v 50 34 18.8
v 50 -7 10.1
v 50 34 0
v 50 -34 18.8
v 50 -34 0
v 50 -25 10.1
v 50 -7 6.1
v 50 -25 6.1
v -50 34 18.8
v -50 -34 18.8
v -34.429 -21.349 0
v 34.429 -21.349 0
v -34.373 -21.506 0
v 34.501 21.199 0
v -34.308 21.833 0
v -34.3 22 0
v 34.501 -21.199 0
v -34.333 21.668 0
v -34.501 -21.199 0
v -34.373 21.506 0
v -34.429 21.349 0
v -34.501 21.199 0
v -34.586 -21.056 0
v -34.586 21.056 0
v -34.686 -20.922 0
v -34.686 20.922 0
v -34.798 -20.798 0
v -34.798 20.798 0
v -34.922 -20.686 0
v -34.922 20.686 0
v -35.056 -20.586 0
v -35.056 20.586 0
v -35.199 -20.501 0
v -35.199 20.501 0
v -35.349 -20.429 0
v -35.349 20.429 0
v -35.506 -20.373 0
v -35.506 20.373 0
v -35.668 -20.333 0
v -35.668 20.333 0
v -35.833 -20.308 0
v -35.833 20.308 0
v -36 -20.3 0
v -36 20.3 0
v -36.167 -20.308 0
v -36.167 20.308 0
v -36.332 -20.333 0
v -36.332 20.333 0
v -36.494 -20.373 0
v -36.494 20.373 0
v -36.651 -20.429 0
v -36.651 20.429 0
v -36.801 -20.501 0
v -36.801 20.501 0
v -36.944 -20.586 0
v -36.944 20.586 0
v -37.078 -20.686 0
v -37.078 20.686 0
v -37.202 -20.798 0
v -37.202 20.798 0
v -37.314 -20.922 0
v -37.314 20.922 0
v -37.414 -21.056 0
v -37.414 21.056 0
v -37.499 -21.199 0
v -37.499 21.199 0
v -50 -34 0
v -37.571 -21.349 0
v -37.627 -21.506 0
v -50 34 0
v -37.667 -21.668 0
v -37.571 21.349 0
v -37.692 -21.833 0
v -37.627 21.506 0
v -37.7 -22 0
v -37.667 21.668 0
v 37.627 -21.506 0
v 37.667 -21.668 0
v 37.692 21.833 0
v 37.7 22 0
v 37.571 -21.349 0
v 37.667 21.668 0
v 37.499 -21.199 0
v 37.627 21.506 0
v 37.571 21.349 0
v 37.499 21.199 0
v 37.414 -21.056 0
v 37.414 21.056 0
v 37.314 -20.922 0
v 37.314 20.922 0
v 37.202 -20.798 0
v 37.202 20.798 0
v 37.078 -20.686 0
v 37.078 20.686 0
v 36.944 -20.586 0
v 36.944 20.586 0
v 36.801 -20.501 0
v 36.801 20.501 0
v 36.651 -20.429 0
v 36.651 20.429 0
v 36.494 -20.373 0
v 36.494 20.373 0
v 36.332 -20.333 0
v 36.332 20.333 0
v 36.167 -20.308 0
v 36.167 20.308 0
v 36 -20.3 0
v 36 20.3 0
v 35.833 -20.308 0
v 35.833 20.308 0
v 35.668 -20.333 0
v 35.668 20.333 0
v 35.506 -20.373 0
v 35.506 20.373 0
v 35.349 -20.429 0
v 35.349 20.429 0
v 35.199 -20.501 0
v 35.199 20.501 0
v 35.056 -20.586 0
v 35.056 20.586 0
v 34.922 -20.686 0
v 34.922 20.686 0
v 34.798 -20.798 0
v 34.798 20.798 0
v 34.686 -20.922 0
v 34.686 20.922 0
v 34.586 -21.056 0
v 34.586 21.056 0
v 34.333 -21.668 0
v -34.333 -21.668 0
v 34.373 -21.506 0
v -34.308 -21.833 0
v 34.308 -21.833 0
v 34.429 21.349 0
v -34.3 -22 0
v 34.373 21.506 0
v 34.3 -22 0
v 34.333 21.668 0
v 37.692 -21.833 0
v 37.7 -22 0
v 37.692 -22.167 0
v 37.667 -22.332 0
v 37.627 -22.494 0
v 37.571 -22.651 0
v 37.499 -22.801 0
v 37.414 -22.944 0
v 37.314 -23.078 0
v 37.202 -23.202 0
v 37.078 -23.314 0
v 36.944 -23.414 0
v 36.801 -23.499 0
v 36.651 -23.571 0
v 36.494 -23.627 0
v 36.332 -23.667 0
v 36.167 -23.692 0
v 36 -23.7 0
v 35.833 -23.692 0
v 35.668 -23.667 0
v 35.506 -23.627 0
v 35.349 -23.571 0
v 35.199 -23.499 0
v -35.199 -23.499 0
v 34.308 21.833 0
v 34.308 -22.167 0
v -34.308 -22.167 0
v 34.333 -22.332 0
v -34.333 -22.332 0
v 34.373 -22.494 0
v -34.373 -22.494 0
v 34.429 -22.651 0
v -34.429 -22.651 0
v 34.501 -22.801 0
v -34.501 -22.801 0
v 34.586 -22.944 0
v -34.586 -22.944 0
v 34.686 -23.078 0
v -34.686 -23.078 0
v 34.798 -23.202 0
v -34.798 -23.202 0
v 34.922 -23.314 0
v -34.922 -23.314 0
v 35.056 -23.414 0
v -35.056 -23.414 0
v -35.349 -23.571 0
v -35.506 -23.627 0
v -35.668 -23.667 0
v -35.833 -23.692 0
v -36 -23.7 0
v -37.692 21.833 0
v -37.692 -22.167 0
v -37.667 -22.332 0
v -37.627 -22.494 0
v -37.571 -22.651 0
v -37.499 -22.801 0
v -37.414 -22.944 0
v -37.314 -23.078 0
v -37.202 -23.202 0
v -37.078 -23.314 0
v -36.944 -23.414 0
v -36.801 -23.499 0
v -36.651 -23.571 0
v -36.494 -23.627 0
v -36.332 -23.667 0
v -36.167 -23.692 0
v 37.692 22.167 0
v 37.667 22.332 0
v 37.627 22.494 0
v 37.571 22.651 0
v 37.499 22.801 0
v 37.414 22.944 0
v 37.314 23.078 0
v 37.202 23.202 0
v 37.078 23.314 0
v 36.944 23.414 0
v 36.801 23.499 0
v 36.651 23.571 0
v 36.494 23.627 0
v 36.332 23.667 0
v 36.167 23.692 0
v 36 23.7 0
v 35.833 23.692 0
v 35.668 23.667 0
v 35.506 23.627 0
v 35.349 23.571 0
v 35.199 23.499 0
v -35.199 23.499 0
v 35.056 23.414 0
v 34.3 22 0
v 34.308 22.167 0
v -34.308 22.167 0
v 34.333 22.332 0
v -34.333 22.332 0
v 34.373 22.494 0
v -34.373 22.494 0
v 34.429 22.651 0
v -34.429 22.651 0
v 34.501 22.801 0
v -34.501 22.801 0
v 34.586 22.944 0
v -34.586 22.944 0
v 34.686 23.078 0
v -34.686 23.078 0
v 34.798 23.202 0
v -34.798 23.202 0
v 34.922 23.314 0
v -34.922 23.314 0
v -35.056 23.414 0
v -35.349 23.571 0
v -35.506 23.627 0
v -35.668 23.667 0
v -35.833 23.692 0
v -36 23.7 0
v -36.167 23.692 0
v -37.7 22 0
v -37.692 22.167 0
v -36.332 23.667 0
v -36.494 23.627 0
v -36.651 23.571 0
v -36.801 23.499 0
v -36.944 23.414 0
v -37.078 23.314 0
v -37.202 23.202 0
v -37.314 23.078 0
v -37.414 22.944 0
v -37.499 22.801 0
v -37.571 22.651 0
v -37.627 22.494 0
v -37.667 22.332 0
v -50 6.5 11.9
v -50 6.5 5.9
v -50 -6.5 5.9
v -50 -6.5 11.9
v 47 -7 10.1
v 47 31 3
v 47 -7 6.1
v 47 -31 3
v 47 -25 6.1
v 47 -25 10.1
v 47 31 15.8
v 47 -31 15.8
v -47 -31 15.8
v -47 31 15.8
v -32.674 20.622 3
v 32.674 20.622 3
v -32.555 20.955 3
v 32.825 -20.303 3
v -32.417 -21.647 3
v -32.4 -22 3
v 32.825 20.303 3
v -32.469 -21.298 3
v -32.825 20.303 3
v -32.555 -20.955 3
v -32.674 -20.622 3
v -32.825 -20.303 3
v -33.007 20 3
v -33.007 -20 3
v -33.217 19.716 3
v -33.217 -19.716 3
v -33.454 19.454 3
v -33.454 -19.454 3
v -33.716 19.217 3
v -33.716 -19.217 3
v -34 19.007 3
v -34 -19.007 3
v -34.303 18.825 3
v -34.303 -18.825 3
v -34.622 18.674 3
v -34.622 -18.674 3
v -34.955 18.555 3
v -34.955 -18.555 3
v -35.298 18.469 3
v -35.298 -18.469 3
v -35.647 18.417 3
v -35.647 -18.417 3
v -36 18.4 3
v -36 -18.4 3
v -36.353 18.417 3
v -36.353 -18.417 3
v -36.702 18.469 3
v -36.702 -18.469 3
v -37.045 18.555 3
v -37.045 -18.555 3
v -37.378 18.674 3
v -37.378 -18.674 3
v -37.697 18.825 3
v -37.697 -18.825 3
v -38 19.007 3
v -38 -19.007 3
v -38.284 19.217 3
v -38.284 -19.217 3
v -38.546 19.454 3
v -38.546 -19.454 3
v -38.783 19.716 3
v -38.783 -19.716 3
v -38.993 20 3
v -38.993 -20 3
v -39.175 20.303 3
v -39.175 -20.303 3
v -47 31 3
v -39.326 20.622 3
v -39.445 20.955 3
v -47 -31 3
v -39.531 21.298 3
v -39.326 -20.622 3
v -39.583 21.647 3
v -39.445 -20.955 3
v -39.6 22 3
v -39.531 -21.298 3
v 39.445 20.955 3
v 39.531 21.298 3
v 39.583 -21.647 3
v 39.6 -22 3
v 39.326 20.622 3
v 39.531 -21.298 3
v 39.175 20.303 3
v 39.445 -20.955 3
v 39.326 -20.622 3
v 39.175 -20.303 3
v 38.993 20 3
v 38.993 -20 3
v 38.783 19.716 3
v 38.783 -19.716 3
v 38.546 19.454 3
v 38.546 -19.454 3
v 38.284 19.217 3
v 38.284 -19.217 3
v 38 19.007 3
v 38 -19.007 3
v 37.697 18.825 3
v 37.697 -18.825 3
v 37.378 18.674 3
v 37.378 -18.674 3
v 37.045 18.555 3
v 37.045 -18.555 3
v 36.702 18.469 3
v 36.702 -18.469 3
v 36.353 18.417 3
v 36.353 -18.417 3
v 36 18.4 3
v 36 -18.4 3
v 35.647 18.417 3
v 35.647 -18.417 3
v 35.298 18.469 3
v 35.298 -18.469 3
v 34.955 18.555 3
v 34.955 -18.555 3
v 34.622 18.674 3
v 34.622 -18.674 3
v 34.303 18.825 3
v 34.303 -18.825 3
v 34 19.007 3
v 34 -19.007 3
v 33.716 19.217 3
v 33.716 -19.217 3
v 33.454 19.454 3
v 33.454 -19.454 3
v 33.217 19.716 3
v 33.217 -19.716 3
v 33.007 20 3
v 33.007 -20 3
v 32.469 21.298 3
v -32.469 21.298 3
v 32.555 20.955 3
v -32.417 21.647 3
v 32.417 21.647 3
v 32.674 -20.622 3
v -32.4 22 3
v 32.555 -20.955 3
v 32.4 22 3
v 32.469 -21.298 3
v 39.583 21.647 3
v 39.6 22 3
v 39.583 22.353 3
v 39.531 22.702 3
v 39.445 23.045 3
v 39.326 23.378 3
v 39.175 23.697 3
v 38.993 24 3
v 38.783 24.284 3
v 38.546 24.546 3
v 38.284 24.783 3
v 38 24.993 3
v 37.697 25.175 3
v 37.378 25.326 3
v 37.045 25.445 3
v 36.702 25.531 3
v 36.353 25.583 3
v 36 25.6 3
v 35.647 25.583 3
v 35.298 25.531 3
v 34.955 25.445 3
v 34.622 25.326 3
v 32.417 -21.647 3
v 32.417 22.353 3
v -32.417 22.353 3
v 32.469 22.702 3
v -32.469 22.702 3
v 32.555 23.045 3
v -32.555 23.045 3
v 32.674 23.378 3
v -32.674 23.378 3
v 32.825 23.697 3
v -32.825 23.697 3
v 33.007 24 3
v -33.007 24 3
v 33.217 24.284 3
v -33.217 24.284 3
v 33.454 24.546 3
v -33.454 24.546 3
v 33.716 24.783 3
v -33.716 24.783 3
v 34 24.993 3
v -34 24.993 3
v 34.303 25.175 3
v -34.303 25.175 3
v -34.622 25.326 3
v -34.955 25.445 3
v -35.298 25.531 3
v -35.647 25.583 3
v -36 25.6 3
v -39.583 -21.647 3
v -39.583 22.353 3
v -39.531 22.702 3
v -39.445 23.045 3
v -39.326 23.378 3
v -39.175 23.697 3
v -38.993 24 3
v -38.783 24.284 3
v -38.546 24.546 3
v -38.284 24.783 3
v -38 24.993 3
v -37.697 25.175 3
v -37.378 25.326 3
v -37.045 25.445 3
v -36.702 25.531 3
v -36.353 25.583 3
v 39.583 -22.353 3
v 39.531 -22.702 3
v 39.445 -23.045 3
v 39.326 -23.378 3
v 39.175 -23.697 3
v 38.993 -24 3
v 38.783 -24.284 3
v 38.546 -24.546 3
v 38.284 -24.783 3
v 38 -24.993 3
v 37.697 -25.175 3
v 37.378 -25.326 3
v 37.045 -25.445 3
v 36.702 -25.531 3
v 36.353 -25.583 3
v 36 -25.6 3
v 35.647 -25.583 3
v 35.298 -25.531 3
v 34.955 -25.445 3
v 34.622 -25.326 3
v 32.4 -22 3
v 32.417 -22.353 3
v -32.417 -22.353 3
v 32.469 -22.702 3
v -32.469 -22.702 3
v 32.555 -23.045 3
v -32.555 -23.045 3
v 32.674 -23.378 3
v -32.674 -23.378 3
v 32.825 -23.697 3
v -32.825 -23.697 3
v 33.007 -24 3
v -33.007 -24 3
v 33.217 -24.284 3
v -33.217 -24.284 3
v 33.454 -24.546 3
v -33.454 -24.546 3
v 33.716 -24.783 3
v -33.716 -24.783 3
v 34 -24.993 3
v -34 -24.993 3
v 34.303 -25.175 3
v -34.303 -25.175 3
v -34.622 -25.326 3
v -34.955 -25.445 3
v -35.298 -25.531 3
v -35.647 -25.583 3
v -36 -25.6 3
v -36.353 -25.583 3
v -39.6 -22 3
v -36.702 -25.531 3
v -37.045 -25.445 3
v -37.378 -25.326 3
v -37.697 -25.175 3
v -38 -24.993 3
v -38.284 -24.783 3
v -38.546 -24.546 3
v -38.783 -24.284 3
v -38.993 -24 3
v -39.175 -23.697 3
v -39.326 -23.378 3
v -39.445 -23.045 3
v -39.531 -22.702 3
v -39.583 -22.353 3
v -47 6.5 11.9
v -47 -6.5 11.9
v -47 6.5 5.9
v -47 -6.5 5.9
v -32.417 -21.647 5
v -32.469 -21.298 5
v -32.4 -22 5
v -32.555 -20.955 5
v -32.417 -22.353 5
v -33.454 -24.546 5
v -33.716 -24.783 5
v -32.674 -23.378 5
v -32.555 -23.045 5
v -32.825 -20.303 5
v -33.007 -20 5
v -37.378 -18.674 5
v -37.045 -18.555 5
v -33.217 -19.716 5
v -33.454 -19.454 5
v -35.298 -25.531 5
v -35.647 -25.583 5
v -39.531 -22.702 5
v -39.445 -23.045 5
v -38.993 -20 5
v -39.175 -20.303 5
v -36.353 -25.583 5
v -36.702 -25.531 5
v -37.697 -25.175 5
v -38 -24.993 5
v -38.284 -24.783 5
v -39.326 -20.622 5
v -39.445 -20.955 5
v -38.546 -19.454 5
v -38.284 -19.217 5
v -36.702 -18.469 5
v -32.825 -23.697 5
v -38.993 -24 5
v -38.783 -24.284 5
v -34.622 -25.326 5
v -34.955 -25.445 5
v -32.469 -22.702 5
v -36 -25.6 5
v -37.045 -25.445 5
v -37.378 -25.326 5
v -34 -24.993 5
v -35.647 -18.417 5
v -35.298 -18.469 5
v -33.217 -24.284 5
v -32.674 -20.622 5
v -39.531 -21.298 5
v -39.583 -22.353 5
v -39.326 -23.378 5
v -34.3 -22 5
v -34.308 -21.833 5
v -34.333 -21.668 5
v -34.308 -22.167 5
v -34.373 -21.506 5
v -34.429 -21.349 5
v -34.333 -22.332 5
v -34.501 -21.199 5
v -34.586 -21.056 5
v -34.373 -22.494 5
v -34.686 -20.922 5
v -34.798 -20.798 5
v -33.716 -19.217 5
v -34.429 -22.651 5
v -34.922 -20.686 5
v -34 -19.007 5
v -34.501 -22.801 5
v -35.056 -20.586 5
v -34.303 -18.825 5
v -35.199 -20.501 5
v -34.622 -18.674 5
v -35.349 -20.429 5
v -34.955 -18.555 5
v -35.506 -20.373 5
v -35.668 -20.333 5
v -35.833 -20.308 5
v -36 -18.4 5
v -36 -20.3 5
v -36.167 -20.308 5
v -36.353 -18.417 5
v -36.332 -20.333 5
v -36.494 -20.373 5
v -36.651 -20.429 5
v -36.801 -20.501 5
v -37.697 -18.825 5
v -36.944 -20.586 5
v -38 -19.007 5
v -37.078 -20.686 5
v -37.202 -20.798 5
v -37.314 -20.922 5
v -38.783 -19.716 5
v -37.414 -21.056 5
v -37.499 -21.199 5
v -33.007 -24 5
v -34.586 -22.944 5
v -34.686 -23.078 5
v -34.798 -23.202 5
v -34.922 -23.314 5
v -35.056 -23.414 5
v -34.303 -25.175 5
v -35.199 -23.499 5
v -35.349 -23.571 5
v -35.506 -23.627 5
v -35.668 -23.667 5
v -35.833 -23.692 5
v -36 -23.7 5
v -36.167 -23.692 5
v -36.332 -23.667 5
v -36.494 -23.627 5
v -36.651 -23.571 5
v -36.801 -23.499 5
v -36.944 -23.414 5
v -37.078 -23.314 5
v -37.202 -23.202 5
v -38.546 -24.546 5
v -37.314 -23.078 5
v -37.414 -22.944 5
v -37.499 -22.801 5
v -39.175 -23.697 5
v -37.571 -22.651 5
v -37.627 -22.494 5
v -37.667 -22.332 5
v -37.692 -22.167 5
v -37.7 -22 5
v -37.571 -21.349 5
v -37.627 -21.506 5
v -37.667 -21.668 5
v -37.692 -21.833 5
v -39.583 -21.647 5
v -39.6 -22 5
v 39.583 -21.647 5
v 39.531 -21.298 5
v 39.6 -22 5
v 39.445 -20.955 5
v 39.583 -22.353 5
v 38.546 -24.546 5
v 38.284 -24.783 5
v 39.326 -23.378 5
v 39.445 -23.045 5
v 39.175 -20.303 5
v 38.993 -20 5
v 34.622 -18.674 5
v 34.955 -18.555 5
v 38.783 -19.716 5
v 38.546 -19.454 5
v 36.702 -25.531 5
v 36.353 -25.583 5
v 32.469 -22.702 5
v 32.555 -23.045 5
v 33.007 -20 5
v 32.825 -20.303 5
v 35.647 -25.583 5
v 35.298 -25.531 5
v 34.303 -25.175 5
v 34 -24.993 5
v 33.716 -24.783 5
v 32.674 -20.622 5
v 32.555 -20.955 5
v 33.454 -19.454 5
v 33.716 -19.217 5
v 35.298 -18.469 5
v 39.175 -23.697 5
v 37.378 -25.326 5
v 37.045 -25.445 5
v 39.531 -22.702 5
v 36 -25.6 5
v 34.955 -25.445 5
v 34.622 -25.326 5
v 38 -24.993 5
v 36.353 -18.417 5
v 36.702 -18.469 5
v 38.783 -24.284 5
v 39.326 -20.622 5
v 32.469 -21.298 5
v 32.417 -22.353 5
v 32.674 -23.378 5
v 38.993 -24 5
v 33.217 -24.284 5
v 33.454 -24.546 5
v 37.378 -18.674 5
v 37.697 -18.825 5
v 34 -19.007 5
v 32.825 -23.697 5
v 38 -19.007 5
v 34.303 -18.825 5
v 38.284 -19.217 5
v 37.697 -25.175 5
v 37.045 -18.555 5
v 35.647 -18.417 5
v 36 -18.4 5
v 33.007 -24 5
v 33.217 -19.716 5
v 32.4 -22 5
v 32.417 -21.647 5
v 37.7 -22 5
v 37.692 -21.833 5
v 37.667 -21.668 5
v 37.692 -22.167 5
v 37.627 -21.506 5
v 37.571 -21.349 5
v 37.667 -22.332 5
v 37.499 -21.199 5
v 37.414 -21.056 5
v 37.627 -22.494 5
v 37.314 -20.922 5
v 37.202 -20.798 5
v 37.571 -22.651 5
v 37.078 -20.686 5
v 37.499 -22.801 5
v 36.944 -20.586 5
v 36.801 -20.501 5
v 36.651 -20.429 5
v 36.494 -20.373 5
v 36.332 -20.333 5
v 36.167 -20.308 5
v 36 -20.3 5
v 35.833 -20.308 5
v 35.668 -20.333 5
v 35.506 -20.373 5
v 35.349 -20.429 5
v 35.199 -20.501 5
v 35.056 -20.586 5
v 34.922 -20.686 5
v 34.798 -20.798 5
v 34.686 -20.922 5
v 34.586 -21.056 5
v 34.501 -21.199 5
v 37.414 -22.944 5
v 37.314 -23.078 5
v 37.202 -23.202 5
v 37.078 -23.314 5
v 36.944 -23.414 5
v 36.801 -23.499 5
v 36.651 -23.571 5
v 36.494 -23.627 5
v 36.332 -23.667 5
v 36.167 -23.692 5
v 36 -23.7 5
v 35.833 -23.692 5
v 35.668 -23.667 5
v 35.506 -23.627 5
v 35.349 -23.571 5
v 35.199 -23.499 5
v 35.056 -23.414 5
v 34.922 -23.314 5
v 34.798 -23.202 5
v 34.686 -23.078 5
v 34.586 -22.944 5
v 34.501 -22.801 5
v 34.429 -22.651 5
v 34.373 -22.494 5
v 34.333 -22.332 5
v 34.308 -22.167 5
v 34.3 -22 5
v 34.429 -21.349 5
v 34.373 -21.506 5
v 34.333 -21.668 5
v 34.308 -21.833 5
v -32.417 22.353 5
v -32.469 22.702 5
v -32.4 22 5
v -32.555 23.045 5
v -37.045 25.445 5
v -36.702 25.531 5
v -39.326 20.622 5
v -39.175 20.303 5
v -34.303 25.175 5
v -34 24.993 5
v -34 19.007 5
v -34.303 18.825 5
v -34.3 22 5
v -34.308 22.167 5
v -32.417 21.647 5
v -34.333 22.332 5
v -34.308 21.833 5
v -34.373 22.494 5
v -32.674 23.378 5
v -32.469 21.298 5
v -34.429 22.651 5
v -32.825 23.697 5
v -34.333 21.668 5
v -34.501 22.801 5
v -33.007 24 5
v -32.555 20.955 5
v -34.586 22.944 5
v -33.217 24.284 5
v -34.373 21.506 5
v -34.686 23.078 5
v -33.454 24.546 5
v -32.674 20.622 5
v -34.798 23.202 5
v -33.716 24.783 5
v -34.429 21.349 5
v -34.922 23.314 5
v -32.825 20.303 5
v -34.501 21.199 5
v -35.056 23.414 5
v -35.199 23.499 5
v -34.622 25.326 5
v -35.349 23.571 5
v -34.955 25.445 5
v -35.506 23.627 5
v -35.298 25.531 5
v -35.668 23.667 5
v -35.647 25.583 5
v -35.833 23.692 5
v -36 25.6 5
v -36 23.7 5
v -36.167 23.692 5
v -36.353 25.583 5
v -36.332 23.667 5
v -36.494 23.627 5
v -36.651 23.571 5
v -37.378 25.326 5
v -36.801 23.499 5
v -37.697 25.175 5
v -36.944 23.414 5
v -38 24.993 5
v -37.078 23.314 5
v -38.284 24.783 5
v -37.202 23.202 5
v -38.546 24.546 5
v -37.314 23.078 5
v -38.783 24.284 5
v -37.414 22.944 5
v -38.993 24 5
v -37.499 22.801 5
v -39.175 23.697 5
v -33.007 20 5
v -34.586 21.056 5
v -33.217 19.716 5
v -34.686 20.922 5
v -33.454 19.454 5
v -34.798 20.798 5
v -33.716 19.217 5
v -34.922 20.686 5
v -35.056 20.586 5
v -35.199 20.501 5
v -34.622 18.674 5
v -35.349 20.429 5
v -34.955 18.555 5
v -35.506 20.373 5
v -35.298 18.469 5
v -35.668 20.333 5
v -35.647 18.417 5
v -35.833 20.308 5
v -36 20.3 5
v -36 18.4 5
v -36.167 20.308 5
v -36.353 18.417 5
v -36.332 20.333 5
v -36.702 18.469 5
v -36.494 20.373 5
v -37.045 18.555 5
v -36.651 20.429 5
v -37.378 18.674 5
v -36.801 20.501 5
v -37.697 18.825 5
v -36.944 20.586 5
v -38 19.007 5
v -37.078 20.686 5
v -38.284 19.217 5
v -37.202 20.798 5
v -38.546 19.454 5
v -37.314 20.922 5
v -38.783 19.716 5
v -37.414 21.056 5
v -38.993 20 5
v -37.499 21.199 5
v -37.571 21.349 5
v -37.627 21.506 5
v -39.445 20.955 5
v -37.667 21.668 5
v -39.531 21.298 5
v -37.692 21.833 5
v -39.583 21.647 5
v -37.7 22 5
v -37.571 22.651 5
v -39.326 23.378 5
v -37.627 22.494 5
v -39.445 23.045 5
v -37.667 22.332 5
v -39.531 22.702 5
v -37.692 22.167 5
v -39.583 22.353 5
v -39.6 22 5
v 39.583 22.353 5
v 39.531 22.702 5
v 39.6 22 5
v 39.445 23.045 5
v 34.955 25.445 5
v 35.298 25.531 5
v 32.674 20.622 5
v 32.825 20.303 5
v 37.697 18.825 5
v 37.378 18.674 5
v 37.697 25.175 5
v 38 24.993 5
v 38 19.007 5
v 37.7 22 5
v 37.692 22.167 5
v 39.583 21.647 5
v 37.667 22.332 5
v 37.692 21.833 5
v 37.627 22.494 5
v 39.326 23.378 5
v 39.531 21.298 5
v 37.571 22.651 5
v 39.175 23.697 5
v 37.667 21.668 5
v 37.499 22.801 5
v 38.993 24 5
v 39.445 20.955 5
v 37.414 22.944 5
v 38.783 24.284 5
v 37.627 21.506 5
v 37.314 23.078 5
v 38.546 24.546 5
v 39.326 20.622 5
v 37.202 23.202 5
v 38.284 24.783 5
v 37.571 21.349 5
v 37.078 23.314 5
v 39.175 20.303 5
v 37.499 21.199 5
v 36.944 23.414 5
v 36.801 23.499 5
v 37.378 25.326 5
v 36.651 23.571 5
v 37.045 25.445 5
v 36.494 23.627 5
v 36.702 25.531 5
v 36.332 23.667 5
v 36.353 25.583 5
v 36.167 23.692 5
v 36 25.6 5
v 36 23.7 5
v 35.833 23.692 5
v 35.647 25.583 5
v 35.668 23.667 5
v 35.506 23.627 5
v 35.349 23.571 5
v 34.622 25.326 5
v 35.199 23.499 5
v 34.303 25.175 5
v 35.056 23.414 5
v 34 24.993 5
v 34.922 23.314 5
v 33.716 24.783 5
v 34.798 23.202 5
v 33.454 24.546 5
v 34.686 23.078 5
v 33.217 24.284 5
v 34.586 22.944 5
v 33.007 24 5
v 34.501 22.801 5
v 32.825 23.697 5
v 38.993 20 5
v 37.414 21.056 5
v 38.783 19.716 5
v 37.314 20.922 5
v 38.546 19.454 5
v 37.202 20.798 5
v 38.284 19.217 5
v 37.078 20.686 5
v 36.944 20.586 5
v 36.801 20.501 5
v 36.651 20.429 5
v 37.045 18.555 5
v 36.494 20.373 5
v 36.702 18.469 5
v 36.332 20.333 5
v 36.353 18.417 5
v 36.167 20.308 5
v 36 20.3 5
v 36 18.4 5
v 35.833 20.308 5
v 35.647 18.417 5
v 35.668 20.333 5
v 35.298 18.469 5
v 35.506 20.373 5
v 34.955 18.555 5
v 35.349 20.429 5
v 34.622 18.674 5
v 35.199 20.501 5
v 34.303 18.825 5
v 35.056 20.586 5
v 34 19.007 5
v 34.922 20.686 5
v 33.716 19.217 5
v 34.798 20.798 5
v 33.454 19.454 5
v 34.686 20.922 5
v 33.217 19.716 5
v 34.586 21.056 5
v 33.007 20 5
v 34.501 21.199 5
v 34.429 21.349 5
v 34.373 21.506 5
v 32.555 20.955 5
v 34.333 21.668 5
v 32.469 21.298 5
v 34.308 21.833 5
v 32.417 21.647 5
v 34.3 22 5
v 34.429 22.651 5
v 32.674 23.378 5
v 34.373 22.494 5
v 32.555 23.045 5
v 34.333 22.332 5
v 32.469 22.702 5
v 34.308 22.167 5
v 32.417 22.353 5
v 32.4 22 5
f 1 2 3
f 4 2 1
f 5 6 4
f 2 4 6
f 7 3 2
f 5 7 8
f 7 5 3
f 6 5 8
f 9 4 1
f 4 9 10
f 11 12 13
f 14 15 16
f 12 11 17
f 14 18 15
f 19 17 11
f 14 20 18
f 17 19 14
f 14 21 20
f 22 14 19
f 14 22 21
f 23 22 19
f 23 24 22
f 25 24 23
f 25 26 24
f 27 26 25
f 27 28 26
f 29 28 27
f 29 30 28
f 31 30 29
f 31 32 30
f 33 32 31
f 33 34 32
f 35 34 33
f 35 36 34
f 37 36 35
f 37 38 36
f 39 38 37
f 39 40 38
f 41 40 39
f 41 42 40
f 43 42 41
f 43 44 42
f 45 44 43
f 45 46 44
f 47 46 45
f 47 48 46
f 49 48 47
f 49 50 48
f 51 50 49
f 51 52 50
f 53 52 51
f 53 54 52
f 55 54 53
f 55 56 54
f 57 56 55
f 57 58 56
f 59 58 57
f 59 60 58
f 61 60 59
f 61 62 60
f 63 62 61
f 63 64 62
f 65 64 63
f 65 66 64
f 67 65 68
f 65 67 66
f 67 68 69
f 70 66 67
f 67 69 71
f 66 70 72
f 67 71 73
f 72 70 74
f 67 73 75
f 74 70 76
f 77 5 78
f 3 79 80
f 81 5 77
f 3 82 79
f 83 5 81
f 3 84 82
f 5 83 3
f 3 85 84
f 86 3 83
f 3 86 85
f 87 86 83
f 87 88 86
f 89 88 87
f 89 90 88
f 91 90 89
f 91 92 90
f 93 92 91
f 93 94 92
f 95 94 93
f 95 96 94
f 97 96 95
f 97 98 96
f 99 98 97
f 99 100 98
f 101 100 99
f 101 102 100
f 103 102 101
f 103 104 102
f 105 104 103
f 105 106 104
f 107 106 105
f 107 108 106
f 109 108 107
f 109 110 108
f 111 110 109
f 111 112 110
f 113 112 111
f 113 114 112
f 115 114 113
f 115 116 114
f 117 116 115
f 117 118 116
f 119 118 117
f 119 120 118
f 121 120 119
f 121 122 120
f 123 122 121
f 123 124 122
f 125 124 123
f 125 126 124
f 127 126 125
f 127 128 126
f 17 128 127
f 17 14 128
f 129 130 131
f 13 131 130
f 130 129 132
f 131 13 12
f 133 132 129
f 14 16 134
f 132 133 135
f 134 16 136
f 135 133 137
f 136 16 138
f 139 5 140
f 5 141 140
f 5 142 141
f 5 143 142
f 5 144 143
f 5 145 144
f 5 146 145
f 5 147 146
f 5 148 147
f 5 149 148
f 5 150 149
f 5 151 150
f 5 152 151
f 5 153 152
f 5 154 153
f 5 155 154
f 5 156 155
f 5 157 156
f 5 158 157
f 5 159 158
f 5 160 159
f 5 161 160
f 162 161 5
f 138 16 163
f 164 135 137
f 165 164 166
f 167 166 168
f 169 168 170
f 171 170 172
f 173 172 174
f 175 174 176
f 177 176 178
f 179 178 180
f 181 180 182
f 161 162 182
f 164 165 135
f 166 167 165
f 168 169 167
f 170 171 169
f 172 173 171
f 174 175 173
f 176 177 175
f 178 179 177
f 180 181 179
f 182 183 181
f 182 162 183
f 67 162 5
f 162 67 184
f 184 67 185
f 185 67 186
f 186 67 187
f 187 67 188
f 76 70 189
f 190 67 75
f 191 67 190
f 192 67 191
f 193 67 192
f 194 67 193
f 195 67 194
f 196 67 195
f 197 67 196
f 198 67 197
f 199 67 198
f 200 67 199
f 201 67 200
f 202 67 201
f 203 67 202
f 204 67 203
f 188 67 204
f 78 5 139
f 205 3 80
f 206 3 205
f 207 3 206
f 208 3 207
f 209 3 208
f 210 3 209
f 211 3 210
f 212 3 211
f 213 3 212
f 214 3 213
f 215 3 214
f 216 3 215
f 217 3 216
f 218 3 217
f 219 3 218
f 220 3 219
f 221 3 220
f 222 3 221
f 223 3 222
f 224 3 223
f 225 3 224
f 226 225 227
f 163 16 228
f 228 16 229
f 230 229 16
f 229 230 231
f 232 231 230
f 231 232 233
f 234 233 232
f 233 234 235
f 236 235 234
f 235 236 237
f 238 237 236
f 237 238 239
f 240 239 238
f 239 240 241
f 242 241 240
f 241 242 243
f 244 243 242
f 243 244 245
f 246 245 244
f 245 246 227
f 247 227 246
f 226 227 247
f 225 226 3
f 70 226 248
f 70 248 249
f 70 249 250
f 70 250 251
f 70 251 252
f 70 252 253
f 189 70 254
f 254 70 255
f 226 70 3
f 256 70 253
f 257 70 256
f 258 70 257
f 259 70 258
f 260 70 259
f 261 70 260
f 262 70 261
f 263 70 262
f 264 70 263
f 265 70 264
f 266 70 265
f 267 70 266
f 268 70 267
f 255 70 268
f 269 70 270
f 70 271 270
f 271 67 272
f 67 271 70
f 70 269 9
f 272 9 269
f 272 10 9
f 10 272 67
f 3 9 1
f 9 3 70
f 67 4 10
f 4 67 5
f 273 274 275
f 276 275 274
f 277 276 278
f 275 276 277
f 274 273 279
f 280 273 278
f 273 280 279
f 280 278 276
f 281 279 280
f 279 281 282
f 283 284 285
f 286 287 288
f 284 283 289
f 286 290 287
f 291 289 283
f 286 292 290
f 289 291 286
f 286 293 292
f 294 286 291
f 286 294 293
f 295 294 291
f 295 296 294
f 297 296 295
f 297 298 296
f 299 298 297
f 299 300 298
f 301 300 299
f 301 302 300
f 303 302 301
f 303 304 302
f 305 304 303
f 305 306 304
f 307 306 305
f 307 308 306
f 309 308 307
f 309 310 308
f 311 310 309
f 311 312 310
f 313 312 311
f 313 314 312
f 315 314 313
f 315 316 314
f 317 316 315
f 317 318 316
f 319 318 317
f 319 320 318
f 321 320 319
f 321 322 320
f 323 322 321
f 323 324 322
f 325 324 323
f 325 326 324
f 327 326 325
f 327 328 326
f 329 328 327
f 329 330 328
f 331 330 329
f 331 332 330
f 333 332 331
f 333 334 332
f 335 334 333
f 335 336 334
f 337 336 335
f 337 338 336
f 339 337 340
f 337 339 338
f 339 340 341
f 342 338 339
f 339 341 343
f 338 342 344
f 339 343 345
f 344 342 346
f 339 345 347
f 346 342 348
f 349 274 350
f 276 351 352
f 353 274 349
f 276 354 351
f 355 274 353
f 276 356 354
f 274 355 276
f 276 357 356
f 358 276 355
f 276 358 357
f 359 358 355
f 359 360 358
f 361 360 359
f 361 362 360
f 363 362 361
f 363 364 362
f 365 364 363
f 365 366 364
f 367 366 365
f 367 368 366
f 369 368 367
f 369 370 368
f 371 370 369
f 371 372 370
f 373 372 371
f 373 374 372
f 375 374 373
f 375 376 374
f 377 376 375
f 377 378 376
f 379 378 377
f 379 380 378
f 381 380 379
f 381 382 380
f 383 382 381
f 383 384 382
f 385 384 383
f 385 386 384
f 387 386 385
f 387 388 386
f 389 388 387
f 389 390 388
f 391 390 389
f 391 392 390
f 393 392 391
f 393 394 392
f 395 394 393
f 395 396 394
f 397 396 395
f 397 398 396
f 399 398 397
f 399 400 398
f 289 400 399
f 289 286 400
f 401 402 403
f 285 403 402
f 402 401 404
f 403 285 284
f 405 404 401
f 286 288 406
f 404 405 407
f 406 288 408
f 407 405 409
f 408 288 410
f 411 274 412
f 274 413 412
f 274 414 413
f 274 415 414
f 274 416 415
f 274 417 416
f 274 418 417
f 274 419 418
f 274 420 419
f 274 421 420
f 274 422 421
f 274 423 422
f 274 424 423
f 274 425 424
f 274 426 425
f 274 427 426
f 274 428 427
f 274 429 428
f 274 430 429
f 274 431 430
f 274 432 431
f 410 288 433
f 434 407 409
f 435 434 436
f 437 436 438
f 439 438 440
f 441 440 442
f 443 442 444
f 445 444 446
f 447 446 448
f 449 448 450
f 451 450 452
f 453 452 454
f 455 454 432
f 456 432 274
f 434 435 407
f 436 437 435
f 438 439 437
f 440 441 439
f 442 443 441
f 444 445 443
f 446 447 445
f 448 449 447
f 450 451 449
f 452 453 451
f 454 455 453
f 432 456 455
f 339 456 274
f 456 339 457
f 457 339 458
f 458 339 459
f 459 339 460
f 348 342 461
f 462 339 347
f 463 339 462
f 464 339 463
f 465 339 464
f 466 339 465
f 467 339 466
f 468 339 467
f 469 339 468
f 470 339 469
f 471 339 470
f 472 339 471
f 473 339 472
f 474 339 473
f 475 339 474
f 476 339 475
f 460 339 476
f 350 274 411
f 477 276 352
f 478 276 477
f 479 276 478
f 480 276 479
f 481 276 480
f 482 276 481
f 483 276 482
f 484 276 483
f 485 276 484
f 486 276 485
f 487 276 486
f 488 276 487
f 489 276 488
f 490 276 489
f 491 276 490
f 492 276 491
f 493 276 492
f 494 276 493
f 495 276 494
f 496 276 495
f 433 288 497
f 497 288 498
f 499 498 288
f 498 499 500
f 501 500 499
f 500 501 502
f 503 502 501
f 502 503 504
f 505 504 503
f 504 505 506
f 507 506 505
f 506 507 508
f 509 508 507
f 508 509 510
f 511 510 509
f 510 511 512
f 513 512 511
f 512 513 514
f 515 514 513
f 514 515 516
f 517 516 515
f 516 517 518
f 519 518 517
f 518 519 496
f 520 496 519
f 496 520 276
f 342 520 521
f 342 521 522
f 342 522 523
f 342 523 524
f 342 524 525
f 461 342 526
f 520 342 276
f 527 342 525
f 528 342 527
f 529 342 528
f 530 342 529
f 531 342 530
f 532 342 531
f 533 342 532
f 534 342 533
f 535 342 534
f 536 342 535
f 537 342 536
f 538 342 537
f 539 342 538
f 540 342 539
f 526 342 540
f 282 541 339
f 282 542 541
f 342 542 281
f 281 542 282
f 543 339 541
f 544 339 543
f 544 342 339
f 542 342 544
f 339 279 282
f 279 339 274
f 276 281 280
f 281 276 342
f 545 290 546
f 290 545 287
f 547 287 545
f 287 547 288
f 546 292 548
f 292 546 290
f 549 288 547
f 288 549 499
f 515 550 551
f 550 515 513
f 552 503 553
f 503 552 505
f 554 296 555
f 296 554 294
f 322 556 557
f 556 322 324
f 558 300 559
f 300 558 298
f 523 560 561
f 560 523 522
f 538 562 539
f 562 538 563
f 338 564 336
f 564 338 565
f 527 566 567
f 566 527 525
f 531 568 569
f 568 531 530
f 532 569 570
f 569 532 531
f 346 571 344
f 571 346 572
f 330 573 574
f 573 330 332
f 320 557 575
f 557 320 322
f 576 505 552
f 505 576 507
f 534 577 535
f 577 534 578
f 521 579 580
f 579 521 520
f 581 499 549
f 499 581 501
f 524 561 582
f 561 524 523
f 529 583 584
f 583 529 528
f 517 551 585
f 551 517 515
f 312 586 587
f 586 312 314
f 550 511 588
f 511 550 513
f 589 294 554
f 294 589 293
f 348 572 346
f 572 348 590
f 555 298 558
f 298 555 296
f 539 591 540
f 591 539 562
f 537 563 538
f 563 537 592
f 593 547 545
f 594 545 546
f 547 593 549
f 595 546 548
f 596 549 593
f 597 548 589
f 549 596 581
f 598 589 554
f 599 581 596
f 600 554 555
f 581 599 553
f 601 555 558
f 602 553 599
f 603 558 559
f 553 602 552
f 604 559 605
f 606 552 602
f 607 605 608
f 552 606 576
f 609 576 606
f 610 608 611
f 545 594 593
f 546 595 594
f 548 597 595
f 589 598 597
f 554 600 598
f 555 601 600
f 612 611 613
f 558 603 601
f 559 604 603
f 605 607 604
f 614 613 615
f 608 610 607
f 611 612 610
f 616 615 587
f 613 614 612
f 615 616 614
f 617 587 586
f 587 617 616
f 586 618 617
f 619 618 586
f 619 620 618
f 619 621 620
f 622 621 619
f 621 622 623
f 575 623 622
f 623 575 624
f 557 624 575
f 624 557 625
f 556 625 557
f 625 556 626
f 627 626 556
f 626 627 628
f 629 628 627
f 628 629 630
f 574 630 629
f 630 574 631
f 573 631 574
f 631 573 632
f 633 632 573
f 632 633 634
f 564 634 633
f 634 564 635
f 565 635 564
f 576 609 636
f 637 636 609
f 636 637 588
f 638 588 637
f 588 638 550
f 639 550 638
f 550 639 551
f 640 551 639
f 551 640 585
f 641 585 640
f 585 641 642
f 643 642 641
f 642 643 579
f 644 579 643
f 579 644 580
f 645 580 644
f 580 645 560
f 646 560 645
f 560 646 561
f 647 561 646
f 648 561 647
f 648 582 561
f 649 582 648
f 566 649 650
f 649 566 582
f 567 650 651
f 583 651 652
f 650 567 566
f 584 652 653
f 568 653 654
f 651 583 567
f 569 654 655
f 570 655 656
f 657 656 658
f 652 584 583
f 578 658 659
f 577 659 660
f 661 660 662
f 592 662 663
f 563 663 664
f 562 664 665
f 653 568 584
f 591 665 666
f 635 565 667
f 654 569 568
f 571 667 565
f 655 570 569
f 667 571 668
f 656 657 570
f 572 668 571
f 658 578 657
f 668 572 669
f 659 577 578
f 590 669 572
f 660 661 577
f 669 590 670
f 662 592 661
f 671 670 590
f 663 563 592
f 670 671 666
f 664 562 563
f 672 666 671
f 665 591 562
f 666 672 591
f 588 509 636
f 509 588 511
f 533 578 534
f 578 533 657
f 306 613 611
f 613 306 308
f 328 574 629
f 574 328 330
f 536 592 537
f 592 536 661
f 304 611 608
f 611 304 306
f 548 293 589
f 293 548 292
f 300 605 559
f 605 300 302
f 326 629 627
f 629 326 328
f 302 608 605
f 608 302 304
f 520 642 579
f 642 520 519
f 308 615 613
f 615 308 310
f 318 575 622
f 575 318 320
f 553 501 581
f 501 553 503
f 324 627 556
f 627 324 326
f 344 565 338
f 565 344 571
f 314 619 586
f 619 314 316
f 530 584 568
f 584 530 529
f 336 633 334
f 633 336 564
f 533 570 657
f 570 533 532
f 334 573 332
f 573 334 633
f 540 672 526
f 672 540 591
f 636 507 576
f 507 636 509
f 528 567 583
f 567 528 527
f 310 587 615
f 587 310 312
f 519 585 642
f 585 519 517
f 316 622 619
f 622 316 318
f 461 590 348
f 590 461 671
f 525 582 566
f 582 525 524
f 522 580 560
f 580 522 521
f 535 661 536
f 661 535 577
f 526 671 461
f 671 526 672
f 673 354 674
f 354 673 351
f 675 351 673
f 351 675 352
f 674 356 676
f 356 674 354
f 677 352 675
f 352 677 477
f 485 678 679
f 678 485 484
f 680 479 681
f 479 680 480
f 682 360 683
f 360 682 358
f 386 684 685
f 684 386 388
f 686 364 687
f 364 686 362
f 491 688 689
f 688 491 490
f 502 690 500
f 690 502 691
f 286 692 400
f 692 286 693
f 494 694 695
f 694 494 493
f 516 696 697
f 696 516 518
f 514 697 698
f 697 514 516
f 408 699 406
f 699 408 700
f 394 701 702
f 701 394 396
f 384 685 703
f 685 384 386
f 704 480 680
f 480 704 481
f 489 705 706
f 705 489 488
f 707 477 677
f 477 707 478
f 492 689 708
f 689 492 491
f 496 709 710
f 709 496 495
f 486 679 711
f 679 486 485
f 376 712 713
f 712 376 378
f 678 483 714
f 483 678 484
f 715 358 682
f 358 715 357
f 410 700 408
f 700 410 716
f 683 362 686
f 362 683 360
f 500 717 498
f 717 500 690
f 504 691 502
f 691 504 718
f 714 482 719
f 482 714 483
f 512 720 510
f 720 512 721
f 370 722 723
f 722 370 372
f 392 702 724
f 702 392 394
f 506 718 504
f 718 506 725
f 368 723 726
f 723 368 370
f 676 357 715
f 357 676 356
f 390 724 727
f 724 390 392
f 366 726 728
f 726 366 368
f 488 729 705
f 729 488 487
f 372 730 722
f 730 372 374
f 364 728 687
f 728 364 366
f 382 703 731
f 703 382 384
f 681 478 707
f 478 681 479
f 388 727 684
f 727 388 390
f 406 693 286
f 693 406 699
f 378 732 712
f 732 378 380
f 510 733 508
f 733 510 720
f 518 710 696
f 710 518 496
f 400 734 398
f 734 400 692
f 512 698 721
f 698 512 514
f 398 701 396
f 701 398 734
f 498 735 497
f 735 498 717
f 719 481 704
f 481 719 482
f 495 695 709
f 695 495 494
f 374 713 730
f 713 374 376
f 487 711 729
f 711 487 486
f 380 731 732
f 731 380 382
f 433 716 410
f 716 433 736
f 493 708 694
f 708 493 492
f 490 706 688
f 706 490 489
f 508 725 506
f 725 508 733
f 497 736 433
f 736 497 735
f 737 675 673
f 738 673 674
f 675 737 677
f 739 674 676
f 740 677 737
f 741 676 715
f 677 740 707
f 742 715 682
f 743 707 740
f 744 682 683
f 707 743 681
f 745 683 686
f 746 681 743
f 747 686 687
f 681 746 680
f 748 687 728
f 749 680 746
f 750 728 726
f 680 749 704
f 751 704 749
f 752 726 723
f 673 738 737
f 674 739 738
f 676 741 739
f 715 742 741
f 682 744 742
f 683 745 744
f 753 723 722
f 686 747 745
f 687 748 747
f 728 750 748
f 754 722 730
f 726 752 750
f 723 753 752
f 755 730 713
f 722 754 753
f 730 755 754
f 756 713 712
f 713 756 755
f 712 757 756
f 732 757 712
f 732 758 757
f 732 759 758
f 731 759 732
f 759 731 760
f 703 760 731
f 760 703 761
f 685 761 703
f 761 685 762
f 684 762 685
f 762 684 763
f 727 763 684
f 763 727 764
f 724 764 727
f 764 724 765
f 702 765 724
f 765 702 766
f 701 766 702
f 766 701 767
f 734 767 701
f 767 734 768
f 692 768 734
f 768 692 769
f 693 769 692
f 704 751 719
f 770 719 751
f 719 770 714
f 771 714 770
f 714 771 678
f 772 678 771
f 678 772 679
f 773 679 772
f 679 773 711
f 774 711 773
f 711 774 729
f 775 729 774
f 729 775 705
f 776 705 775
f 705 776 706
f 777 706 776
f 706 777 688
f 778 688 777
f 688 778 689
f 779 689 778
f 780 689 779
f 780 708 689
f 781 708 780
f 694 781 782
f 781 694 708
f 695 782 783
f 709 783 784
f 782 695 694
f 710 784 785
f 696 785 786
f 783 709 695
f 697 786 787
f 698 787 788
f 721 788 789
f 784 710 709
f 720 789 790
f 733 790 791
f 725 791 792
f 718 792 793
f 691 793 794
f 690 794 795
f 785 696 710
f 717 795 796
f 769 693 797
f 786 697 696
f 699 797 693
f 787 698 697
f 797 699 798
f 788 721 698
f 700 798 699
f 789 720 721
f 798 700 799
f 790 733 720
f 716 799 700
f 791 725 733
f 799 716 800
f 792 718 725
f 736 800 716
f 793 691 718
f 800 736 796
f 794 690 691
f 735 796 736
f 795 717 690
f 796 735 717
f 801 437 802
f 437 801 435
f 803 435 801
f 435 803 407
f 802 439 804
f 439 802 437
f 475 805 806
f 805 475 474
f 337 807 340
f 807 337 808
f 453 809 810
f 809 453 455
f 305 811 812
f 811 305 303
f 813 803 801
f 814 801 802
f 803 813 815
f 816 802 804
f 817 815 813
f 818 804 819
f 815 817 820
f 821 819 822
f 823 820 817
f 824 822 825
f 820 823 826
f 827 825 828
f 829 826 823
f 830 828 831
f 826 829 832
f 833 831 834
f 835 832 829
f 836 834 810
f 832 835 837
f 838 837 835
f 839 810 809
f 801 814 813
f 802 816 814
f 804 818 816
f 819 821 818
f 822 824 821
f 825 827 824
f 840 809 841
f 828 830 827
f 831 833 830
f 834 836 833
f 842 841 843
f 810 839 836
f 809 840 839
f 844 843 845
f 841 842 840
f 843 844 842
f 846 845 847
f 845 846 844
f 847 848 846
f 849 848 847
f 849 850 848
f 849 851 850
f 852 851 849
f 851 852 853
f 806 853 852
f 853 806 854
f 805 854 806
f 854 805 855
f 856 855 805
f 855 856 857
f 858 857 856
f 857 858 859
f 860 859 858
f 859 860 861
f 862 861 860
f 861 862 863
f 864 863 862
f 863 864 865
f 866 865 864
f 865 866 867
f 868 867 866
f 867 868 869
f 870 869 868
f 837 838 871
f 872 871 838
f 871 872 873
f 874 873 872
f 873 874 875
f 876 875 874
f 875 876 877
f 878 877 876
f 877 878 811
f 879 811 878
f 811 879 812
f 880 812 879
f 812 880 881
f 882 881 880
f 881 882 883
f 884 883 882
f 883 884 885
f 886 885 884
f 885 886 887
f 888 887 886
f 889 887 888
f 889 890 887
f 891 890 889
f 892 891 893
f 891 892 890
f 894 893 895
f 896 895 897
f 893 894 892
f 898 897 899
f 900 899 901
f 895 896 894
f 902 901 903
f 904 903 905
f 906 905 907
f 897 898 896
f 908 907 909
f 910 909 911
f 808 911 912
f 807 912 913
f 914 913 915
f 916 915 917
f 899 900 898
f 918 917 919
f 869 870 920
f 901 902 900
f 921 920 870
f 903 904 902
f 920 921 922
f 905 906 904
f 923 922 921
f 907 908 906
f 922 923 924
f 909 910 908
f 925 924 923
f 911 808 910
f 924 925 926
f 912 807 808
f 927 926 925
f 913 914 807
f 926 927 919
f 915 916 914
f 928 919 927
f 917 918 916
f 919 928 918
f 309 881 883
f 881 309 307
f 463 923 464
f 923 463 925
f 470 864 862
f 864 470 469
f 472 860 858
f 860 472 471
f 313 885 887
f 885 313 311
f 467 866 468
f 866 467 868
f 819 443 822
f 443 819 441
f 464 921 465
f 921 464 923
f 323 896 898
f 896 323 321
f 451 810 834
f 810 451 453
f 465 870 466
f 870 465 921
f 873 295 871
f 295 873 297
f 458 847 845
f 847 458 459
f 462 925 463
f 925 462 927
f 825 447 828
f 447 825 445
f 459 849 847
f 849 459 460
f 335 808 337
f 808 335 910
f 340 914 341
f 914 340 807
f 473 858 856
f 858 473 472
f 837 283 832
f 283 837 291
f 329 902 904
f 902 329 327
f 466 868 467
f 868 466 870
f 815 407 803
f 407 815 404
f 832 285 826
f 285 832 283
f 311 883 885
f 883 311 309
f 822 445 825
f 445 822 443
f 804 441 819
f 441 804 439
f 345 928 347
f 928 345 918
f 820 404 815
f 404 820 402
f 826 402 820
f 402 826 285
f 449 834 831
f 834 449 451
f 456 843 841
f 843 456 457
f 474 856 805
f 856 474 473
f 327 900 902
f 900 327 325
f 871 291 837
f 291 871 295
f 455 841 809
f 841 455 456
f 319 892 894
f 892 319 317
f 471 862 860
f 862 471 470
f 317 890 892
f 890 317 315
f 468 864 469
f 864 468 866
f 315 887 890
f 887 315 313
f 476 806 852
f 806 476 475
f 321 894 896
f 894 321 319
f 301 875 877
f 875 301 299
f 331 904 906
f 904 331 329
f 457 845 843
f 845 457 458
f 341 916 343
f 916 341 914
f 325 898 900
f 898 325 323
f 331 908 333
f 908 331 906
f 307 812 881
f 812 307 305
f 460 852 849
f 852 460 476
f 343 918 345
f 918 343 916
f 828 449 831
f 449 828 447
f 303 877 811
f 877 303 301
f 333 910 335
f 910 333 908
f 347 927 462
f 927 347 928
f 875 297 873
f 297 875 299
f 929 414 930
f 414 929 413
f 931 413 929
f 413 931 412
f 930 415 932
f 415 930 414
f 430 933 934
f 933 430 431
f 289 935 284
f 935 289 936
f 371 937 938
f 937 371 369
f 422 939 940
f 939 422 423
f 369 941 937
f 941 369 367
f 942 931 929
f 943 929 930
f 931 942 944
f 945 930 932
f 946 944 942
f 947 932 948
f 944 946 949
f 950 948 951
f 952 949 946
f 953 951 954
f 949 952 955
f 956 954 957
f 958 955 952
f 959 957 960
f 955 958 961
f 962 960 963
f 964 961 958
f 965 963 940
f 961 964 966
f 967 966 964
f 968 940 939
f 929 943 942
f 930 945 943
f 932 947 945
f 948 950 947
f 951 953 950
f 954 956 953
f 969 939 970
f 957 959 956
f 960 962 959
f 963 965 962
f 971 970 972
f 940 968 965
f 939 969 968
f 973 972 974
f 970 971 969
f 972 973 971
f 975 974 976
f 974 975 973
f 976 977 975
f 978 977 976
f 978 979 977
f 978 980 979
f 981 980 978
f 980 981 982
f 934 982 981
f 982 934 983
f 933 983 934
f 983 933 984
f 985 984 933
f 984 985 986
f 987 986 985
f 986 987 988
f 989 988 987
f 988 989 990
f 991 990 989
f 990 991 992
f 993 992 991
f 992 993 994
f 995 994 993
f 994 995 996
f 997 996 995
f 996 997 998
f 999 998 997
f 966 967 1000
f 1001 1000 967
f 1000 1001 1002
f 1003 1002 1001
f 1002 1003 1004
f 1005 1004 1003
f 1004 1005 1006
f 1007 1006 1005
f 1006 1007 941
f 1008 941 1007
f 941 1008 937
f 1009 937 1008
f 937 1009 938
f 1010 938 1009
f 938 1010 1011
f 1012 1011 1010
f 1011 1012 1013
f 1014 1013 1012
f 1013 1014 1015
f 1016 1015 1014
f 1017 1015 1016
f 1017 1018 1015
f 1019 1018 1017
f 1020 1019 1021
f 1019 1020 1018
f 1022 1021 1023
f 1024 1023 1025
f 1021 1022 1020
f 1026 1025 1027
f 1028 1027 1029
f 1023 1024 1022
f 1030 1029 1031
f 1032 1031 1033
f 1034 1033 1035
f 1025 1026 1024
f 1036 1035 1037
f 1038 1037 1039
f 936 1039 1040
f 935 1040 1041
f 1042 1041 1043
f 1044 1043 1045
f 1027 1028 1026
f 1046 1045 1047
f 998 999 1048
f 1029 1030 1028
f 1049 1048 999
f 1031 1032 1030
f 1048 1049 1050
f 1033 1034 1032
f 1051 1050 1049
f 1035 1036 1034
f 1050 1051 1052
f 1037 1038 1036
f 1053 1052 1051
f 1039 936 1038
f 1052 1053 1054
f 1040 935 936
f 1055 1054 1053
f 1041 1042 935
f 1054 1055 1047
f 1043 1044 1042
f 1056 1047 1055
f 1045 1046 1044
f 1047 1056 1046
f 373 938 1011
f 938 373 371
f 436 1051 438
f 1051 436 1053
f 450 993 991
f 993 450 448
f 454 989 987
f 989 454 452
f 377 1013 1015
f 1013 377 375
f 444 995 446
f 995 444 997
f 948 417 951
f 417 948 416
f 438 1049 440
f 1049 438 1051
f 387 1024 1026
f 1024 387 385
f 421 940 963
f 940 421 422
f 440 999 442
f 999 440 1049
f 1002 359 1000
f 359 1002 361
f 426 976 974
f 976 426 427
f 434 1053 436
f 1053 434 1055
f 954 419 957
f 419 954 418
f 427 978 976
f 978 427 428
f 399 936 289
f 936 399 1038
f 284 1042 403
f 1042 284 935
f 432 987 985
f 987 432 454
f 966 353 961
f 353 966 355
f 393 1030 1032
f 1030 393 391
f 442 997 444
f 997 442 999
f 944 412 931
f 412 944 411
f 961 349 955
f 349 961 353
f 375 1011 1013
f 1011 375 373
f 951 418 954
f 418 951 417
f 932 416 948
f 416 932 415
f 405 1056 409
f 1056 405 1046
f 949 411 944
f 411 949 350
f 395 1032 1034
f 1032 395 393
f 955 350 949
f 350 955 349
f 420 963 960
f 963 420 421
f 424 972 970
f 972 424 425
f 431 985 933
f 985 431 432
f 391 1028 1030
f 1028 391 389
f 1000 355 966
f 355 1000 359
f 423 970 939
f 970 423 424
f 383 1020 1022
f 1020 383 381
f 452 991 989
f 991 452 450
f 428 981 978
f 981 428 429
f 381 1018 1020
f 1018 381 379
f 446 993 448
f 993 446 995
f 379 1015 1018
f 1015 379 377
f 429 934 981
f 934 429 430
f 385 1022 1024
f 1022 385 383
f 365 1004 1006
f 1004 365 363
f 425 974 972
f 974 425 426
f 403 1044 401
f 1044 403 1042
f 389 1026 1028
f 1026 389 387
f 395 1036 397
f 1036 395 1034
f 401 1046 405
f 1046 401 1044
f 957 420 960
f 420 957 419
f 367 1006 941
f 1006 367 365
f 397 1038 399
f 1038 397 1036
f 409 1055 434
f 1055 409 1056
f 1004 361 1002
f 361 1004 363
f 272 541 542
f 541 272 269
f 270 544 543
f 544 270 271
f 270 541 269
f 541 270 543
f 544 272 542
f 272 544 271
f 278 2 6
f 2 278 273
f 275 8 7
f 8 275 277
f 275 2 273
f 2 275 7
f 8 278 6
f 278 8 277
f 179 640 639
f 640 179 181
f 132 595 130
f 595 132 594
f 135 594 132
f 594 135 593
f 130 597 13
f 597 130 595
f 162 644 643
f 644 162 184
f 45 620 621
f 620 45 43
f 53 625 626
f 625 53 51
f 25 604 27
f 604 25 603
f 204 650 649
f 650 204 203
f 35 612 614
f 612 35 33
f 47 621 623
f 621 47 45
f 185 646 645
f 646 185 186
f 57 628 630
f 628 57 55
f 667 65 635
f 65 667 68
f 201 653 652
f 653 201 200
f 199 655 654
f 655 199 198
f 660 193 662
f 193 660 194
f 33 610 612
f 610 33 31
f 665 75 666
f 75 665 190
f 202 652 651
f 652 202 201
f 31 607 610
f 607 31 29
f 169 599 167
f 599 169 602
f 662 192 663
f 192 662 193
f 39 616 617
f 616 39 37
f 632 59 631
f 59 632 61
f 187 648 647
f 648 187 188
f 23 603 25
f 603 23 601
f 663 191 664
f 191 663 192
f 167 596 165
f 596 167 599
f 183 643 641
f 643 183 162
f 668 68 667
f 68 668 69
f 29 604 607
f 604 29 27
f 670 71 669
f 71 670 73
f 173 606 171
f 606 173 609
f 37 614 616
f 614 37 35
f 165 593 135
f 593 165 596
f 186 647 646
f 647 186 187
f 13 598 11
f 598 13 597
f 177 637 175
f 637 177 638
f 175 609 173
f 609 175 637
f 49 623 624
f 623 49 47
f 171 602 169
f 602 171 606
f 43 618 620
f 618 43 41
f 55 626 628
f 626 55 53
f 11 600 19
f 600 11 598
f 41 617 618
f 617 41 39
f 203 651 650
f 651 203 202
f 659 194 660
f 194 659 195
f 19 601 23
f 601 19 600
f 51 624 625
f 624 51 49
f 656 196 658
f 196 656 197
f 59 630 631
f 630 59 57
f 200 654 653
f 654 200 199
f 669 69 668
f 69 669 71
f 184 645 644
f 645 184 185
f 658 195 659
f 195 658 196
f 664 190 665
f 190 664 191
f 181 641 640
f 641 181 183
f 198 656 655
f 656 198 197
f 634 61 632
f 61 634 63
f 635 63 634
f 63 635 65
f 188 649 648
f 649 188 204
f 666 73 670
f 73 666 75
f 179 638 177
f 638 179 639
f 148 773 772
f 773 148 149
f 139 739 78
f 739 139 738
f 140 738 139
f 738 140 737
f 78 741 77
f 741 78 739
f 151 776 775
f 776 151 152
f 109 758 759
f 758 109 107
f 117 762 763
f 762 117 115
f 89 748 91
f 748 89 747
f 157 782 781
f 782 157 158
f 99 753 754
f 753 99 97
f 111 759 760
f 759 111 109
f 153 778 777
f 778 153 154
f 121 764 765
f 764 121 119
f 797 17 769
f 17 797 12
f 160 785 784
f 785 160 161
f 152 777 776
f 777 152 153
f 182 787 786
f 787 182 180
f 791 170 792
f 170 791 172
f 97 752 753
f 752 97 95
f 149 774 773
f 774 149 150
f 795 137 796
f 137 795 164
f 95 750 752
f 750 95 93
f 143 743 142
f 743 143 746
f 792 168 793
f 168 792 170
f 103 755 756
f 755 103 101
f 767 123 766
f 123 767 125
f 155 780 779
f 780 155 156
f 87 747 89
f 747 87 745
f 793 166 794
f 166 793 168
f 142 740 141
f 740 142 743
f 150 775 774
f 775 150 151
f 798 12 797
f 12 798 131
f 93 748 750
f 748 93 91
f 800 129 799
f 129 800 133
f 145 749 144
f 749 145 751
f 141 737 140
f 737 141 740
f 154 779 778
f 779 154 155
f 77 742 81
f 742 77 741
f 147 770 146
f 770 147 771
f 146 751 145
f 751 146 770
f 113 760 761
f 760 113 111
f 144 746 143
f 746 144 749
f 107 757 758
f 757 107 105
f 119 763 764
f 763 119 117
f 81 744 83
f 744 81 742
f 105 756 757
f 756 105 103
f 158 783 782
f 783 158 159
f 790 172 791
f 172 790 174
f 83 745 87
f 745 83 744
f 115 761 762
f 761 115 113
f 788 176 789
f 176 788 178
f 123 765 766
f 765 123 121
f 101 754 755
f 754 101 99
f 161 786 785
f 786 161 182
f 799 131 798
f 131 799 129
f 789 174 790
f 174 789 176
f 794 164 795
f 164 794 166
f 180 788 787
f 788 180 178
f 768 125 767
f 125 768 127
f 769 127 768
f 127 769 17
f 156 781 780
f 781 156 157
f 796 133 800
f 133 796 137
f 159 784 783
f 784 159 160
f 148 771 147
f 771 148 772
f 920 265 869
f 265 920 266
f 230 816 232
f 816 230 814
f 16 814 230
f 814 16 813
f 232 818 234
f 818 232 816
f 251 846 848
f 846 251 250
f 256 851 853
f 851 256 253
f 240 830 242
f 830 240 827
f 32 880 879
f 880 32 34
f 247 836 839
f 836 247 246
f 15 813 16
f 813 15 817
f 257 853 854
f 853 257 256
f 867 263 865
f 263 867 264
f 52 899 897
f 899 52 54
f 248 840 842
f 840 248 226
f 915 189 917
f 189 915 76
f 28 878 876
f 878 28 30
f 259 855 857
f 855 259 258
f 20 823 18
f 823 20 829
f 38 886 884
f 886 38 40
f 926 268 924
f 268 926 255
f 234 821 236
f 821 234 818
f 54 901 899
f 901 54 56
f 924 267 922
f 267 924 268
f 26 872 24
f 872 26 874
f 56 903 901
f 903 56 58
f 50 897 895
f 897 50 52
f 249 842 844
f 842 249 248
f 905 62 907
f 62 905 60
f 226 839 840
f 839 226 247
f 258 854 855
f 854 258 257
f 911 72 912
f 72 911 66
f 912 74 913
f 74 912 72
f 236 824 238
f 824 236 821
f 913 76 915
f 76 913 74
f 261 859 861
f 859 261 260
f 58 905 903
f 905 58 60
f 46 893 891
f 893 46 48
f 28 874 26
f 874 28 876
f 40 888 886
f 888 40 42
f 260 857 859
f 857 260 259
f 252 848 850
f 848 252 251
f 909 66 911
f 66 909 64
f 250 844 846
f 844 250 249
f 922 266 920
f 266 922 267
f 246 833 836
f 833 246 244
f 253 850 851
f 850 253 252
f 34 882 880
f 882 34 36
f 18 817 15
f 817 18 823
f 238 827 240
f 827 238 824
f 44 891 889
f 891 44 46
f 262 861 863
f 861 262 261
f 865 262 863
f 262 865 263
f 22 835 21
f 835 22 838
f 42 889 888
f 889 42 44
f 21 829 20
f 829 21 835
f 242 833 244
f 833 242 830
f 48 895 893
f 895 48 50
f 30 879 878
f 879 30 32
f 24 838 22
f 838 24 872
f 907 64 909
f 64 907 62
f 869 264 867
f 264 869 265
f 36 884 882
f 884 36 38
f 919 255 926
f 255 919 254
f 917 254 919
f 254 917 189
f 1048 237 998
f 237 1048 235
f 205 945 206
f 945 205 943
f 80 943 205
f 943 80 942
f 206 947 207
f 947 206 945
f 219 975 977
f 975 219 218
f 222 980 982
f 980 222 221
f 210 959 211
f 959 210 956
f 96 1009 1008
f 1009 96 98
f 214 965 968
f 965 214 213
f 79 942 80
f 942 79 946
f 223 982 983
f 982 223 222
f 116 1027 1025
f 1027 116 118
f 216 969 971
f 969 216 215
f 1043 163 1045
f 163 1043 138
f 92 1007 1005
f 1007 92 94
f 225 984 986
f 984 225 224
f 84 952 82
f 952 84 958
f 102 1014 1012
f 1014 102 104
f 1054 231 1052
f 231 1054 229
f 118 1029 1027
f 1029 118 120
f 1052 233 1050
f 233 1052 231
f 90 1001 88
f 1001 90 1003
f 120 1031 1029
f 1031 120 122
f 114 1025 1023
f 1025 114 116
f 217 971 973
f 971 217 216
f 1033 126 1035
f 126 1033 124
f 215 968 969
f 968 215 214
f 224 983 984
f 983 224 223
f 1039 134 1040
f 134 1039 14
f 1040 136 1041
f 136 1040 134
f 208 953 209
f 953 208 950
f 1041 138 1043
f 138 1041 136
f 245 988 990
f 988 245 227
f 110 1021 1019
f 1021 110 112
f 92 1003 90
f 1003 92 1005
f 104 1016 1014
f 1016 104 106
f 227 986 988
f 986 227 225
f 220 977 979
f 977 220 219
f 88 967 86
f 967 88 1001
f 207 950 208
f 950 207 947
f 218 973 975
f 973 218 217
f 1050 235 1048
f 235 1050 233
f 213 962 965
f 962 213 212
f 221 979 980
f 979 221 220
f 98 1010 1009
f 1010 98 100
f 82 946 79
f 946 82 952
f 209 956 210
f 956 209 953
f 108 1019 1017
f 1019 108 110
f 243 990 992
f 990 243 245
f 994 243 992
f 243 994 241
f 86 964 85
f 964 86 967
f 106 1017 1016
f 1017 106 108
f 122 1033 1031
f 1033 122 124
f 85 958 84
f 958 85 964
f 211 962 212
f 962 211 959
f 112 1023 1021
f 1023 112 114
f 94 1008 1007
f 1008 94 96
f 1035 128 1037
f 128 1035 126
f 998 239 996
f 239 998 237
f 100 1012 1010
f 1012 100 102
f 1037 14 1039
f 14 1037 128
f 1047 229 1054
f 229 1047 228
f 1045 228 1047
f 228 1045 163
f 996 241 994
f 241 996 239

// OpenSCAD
// Task 01 enclosure generated from 01_kicad_mechanical_map.csv.
// Input map SHA-256: c999cd1ca91771298d82bd2c82f6ea6ded1dd55cb864fd420768199dbae181b0
$fn = 64;
board = [86.000, 54.000, 1.600];
enclosure = [100.000, 68.000, 18.800];
cavity = [94.000, 62.000, 12.800];
wall = 3.000;
base_thickness = 3.000;
lid_thickness = 3.000;
board_bottom_z = 5.000;
standoff_height = 2.000;
standoff_od = 7.200;
standoff_bore = 3.400;
overcut = 0.500;

module shell() {
  difference() {
    translate([-enclosure[0]/2, -enclosure[1]/2, 0]) cube(enclosure);
    translate([-cavity[0]/2, -cavity[1]/2, base_thickness]) cube(cavity);
  }
}

module standoff(x, y) {
  translate([x, y, base_thickness]) cylinder(d=standoff_od, h=standoff_height);
}

module screw_bore(x, y) {
  translate([x, y, -overcut]) cylinder(d=standoff_bore, h=board_bottom_z + 2*overcut);
}

module enclosure_with_standoffs() {
  union() {
    shell();
    standoff(-36.000, -22.000); // MH1
    standoff(36.000, -22.000); // MH2
    standoff(-36.000, 22.000); // MH3
    standoff(36.000, 22.000); // MH4
  }
}

difference() {
  enclosure_with_standoffs();
  // J1 X_MINUS through-aperture
  translate([-50.500, -6.500, 5.900])
    cube([4.000, 13.000, 6.000]);
  // J2 X_PLUS through-aperture
  translate([46.500, -25.000, 6.100])
    cube([4.000, 18.000, 4.000]);
  screw_bore(-36.000, -22.000); // MH1
  screw_bore(36.000, -22.000); // MH2
  screw_bore(-36.000, 22.000); // MH3
  screw_bore(36.000, 22.000); // MH4
}
